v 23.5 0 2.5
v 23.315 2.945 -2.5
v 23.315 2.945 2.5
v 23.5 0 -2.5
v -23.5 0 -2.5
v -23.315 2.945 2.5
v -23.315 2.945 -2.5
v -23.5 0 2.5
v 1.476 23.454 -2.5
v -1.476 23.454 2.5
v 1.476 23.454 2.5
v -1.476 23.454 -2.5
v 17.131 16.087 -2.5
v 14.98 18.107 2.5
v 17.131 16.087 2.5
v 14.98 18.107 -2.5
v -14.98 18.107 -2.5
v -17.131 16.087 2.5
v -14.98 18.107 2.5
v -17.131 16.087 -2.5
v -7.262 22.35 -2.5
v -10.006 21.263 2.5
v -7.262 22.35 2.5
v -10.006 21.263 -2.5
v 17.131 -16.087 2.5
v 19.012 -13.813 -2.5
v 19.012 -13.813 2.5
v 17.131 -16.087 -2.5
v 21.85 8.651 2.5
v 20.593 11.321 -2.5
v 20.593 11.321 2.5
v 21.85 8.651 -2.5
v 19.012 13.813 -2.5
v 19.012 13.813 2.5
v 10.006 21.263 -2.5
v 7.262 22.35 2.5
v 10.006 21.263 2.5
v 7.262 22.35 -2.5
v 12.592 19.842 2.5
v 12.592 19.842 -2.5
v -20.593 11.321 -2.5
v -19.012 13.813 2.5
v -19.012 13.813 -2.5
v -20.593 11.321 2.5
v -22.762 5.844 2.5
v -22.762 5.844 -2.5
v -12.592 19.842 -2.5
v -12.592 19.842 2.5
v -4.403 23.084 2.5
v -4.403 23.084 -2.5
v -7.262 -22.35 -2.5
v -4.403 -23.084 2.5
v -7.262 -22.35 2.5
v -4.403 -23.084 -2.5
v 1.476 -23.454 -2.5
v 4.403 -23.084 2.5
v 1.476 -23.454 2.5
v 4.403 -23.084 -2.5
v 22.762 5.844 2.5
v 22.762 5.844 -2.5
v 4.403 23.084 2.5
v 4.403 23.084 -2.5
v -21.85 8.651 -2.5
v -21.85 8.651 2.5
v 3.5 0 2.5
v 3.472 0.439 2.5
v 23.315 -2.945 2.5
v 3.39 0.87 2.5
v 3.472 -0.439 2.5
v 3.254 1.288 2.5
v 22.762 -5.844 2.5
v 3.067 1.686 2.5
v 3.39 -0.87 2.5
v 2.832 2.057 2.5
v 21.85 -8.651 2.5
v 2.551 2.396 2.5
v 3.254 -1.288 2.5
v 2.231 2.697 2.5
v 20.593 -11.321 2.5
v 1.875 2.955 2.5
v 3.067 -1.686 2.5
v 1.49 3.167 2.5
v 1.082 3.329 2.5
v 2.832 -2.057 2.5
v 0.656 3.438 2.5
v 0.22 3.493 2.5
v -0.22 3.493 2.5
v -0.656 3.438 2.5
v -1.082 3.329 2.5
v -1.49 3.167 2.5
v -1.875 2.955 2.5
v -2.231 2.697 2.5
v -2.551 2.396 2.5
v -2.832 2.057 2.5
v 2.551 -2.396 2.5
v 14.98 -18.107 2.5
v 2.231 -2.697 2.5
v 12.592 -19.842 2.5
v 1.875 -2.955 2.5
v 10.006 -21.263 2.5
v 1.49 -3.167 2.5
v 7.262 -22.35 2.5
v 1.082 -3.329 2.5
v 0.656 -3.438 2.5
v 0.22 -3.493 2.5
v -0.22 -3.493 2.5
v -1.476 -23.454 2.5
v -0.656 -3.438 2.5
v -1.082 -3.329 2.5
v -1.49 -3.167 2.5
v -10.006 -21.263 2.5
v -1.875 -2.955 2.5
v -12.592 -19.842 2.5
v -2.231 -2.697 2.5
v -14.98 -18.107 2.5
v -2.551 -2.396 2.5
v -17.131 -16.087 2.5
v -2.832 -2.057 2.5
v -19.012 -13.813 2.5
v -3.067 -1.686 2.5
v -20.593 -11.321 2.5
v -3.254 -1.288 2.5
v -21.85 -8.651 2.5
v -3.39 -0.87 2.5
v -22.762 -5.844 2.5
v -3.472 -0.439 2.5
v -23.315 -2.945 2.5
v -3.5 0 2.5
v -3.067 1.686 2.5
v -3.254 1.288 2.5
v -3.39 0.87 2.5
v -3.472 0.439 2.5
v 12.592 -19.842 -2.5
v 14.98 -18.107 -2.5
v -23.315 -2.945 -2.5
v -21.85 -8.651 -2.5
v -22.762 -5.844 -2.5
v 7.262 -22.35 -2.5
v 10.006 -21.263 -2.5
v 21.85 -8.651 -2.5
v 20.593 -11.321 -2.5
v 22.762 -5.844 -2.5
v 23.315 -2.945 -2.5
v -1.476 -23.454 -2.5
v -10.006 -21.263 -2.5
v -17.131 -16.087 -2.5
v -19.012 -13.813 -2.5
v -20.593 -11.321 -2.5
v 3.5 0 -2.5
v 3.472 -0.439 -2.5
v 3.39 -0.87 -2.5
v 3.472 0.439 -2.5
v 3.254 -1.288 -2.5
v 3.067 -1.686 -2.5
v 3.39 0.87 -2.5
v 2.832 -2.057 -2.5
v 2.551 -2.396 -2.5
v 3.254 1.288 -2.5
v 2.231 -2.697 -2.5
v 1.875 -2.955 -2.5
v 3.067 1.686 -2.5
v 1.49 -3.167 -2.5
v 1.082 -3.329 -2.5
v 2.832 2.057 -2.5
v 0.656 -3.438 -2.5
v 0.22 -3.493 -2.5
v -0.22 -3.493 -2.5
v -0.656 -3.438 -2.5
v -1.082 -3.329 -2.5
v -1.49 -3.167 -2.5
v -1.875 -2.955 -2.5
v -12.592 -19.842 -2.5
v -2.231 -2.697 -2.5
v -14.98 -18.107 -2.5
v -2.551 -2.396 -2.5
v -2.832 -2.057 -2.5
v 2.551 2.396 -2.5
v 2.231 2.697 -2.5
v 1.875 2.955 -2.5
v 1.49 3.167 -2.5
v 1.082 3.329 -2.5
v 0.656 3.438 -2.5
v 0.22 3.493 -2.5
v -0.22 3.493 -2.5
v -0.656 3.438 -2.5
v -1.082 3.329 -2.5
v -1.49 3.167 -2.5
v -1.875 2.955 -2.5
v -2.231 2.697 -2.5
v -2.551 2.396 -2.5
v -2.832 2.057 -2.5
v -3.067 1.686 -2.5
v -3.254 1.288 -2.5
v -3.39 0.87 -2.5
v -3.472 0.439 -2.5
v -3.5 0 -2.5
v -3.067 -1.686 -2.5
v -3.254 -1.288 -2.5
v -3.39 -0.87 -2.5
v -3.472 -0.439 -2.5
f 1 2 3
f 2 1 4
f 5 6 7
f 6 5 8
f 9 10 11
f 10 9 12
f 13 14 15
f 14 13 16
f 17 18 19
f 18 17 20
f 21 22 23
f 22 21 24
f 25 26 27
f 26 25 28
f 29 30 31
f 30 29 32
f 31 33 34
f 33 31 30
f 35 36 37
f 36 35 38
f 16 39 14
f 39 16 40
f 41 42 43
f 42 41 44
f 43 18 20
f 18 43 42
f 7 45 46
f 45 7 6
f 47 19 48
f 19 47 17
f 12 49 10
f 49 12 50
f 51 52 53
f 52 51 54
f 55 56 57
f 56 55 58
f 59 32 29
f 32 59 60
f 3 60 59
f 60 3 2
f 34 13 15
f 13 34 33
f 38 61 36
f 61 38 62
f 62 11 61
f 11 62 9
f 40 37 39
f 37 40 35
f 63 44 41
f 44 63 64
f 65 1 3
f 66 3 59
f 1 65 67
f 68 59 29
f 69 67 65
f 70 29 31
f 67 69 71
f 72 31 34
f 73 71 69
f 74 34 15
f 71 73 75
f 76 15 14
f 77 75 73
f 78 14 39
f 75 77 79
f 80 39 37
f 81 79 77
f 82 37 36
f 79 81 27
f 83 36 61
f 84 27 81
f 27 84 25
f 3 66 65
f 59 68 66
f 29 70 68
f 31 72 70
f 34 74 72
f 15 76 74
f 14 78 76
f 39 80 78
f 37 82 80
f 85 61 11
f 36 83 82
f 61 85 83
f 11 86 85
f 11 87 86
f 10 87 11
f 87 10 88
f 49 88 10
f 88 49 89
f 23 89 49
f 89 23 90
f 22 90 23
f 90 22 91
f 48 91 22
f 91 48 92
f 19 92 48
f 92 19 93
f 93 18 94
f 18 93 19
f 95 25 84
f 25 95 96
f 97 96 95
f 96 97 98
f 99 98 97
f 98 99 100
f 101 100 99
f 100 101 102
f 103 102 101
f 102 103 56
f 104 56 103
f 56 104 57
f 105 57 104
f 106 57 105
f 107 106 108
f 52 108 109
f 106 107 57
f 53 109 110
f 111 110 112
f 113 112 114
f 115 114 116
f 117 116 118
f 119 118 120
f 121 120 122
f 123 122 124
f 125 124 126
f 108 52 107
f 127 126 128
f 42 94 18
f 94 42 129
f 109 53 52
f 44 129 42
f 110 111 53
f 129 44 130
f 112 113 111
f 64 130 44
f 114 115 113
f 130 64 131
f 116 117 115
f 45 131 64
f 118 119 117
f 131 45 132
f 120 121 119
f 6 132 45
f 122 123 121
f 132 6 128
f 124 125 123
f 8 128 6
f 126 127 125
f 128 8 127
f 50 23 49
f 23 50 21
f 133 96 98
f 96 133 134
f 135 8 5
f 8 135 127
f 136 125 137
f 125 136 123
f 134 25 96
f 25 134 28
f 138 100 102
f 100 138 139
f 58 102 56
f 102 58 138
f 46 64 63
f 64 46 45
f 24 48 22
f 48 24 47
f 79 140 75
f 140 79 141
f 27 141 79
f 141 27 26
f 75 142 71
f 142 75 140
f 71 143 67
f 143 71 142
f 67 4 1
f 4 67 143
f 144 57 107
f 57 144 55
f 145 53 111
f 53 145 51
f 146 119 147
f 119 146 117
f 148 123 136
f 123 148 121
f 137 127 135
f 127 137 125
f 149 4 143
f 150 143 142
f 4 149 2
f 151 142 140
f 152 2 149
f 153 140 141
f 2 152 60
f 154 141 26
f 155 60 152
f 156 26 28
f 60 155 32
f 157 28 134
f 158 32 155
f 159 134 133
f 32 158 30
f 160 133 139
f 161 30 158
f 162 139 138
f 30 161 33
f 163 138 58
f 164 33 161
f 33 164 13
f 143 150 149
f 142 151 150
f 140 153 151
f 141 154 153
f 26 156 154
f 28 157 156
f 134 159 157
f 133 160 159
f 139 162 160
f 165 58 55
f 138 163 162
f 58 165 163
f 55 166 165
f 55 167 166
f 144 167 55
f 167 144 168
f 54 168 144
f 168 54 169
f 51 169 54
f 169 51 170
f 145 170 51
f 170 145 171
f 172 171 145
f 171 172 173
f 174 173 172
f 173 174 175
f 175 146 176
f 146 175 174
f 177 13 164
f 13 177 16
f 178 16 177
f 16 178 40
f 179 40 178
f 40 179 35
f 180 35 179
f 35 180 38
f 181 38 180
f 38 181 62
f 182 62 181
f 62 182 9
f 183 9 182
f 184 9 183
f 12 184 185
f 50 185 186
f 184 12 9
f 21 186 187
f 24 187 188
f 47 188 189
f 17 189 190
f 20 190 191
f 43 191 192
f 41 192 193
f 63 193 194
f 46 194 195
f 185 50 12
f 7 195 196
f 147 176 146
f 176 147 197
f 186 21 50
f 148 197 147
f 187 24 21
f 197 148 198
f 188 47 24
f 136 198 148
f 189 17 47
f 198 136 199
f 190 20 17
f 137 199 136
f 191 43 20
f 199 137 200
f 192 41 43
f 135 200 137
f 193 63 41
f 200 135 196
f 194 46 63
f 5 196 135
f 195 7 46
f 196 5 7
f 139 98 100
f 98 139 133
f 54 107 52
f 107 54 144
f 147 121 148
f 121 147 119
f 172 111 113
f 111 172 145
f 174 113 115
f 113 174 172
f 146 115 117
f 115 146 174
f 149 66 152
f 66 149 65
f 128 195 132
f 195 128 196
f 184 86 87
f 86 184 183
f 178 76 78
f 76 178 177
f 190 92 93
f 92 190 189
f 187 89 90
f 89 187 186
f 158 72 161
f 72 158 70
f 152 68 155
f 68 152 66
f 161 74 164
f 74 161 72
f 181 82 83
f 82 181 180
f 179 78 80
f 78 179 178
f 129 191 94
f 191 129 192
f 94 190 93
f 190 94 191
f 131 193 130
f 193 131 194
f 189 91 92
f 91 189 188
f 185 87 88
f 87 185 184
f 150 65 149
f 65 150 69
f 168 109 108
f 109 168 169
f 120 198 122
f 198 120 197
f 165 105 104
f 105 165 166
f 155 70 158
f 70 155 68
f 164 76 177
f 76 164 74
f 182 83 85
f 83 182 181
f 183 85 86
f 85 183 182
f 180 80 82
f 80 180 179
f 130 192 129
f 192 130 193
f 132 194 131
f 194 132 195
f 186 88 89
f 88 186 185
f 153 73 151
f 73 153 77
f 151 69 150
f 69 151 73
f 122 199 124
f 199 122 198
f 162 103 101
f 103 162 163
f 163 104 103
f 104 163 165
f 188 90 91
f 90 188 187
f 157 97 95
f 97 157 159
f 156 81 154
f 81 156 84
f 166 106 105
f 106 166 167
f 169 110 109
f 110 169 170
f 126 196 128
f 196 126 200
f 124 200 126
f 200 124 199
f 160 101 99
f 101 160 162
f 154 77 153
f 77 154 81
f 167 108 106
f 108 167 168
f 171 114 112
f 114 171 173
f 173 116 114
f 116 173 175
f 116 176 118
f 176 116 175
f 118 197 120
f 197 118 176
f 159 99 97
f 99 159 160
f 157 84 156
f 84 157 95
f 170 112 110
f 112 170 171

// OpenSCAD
$fn = 50;


difference() {
	union() {
		translate(v = [0, 0, -2.5000000000]) {
			cylinder(h = 5, r = 23.5000000000);
		}
	}
	union() {
		translate(v = [0, 0, -100.0000000000]) {
			cylinder(h = 200, r = 3.5000000000);
		}
	}
}
